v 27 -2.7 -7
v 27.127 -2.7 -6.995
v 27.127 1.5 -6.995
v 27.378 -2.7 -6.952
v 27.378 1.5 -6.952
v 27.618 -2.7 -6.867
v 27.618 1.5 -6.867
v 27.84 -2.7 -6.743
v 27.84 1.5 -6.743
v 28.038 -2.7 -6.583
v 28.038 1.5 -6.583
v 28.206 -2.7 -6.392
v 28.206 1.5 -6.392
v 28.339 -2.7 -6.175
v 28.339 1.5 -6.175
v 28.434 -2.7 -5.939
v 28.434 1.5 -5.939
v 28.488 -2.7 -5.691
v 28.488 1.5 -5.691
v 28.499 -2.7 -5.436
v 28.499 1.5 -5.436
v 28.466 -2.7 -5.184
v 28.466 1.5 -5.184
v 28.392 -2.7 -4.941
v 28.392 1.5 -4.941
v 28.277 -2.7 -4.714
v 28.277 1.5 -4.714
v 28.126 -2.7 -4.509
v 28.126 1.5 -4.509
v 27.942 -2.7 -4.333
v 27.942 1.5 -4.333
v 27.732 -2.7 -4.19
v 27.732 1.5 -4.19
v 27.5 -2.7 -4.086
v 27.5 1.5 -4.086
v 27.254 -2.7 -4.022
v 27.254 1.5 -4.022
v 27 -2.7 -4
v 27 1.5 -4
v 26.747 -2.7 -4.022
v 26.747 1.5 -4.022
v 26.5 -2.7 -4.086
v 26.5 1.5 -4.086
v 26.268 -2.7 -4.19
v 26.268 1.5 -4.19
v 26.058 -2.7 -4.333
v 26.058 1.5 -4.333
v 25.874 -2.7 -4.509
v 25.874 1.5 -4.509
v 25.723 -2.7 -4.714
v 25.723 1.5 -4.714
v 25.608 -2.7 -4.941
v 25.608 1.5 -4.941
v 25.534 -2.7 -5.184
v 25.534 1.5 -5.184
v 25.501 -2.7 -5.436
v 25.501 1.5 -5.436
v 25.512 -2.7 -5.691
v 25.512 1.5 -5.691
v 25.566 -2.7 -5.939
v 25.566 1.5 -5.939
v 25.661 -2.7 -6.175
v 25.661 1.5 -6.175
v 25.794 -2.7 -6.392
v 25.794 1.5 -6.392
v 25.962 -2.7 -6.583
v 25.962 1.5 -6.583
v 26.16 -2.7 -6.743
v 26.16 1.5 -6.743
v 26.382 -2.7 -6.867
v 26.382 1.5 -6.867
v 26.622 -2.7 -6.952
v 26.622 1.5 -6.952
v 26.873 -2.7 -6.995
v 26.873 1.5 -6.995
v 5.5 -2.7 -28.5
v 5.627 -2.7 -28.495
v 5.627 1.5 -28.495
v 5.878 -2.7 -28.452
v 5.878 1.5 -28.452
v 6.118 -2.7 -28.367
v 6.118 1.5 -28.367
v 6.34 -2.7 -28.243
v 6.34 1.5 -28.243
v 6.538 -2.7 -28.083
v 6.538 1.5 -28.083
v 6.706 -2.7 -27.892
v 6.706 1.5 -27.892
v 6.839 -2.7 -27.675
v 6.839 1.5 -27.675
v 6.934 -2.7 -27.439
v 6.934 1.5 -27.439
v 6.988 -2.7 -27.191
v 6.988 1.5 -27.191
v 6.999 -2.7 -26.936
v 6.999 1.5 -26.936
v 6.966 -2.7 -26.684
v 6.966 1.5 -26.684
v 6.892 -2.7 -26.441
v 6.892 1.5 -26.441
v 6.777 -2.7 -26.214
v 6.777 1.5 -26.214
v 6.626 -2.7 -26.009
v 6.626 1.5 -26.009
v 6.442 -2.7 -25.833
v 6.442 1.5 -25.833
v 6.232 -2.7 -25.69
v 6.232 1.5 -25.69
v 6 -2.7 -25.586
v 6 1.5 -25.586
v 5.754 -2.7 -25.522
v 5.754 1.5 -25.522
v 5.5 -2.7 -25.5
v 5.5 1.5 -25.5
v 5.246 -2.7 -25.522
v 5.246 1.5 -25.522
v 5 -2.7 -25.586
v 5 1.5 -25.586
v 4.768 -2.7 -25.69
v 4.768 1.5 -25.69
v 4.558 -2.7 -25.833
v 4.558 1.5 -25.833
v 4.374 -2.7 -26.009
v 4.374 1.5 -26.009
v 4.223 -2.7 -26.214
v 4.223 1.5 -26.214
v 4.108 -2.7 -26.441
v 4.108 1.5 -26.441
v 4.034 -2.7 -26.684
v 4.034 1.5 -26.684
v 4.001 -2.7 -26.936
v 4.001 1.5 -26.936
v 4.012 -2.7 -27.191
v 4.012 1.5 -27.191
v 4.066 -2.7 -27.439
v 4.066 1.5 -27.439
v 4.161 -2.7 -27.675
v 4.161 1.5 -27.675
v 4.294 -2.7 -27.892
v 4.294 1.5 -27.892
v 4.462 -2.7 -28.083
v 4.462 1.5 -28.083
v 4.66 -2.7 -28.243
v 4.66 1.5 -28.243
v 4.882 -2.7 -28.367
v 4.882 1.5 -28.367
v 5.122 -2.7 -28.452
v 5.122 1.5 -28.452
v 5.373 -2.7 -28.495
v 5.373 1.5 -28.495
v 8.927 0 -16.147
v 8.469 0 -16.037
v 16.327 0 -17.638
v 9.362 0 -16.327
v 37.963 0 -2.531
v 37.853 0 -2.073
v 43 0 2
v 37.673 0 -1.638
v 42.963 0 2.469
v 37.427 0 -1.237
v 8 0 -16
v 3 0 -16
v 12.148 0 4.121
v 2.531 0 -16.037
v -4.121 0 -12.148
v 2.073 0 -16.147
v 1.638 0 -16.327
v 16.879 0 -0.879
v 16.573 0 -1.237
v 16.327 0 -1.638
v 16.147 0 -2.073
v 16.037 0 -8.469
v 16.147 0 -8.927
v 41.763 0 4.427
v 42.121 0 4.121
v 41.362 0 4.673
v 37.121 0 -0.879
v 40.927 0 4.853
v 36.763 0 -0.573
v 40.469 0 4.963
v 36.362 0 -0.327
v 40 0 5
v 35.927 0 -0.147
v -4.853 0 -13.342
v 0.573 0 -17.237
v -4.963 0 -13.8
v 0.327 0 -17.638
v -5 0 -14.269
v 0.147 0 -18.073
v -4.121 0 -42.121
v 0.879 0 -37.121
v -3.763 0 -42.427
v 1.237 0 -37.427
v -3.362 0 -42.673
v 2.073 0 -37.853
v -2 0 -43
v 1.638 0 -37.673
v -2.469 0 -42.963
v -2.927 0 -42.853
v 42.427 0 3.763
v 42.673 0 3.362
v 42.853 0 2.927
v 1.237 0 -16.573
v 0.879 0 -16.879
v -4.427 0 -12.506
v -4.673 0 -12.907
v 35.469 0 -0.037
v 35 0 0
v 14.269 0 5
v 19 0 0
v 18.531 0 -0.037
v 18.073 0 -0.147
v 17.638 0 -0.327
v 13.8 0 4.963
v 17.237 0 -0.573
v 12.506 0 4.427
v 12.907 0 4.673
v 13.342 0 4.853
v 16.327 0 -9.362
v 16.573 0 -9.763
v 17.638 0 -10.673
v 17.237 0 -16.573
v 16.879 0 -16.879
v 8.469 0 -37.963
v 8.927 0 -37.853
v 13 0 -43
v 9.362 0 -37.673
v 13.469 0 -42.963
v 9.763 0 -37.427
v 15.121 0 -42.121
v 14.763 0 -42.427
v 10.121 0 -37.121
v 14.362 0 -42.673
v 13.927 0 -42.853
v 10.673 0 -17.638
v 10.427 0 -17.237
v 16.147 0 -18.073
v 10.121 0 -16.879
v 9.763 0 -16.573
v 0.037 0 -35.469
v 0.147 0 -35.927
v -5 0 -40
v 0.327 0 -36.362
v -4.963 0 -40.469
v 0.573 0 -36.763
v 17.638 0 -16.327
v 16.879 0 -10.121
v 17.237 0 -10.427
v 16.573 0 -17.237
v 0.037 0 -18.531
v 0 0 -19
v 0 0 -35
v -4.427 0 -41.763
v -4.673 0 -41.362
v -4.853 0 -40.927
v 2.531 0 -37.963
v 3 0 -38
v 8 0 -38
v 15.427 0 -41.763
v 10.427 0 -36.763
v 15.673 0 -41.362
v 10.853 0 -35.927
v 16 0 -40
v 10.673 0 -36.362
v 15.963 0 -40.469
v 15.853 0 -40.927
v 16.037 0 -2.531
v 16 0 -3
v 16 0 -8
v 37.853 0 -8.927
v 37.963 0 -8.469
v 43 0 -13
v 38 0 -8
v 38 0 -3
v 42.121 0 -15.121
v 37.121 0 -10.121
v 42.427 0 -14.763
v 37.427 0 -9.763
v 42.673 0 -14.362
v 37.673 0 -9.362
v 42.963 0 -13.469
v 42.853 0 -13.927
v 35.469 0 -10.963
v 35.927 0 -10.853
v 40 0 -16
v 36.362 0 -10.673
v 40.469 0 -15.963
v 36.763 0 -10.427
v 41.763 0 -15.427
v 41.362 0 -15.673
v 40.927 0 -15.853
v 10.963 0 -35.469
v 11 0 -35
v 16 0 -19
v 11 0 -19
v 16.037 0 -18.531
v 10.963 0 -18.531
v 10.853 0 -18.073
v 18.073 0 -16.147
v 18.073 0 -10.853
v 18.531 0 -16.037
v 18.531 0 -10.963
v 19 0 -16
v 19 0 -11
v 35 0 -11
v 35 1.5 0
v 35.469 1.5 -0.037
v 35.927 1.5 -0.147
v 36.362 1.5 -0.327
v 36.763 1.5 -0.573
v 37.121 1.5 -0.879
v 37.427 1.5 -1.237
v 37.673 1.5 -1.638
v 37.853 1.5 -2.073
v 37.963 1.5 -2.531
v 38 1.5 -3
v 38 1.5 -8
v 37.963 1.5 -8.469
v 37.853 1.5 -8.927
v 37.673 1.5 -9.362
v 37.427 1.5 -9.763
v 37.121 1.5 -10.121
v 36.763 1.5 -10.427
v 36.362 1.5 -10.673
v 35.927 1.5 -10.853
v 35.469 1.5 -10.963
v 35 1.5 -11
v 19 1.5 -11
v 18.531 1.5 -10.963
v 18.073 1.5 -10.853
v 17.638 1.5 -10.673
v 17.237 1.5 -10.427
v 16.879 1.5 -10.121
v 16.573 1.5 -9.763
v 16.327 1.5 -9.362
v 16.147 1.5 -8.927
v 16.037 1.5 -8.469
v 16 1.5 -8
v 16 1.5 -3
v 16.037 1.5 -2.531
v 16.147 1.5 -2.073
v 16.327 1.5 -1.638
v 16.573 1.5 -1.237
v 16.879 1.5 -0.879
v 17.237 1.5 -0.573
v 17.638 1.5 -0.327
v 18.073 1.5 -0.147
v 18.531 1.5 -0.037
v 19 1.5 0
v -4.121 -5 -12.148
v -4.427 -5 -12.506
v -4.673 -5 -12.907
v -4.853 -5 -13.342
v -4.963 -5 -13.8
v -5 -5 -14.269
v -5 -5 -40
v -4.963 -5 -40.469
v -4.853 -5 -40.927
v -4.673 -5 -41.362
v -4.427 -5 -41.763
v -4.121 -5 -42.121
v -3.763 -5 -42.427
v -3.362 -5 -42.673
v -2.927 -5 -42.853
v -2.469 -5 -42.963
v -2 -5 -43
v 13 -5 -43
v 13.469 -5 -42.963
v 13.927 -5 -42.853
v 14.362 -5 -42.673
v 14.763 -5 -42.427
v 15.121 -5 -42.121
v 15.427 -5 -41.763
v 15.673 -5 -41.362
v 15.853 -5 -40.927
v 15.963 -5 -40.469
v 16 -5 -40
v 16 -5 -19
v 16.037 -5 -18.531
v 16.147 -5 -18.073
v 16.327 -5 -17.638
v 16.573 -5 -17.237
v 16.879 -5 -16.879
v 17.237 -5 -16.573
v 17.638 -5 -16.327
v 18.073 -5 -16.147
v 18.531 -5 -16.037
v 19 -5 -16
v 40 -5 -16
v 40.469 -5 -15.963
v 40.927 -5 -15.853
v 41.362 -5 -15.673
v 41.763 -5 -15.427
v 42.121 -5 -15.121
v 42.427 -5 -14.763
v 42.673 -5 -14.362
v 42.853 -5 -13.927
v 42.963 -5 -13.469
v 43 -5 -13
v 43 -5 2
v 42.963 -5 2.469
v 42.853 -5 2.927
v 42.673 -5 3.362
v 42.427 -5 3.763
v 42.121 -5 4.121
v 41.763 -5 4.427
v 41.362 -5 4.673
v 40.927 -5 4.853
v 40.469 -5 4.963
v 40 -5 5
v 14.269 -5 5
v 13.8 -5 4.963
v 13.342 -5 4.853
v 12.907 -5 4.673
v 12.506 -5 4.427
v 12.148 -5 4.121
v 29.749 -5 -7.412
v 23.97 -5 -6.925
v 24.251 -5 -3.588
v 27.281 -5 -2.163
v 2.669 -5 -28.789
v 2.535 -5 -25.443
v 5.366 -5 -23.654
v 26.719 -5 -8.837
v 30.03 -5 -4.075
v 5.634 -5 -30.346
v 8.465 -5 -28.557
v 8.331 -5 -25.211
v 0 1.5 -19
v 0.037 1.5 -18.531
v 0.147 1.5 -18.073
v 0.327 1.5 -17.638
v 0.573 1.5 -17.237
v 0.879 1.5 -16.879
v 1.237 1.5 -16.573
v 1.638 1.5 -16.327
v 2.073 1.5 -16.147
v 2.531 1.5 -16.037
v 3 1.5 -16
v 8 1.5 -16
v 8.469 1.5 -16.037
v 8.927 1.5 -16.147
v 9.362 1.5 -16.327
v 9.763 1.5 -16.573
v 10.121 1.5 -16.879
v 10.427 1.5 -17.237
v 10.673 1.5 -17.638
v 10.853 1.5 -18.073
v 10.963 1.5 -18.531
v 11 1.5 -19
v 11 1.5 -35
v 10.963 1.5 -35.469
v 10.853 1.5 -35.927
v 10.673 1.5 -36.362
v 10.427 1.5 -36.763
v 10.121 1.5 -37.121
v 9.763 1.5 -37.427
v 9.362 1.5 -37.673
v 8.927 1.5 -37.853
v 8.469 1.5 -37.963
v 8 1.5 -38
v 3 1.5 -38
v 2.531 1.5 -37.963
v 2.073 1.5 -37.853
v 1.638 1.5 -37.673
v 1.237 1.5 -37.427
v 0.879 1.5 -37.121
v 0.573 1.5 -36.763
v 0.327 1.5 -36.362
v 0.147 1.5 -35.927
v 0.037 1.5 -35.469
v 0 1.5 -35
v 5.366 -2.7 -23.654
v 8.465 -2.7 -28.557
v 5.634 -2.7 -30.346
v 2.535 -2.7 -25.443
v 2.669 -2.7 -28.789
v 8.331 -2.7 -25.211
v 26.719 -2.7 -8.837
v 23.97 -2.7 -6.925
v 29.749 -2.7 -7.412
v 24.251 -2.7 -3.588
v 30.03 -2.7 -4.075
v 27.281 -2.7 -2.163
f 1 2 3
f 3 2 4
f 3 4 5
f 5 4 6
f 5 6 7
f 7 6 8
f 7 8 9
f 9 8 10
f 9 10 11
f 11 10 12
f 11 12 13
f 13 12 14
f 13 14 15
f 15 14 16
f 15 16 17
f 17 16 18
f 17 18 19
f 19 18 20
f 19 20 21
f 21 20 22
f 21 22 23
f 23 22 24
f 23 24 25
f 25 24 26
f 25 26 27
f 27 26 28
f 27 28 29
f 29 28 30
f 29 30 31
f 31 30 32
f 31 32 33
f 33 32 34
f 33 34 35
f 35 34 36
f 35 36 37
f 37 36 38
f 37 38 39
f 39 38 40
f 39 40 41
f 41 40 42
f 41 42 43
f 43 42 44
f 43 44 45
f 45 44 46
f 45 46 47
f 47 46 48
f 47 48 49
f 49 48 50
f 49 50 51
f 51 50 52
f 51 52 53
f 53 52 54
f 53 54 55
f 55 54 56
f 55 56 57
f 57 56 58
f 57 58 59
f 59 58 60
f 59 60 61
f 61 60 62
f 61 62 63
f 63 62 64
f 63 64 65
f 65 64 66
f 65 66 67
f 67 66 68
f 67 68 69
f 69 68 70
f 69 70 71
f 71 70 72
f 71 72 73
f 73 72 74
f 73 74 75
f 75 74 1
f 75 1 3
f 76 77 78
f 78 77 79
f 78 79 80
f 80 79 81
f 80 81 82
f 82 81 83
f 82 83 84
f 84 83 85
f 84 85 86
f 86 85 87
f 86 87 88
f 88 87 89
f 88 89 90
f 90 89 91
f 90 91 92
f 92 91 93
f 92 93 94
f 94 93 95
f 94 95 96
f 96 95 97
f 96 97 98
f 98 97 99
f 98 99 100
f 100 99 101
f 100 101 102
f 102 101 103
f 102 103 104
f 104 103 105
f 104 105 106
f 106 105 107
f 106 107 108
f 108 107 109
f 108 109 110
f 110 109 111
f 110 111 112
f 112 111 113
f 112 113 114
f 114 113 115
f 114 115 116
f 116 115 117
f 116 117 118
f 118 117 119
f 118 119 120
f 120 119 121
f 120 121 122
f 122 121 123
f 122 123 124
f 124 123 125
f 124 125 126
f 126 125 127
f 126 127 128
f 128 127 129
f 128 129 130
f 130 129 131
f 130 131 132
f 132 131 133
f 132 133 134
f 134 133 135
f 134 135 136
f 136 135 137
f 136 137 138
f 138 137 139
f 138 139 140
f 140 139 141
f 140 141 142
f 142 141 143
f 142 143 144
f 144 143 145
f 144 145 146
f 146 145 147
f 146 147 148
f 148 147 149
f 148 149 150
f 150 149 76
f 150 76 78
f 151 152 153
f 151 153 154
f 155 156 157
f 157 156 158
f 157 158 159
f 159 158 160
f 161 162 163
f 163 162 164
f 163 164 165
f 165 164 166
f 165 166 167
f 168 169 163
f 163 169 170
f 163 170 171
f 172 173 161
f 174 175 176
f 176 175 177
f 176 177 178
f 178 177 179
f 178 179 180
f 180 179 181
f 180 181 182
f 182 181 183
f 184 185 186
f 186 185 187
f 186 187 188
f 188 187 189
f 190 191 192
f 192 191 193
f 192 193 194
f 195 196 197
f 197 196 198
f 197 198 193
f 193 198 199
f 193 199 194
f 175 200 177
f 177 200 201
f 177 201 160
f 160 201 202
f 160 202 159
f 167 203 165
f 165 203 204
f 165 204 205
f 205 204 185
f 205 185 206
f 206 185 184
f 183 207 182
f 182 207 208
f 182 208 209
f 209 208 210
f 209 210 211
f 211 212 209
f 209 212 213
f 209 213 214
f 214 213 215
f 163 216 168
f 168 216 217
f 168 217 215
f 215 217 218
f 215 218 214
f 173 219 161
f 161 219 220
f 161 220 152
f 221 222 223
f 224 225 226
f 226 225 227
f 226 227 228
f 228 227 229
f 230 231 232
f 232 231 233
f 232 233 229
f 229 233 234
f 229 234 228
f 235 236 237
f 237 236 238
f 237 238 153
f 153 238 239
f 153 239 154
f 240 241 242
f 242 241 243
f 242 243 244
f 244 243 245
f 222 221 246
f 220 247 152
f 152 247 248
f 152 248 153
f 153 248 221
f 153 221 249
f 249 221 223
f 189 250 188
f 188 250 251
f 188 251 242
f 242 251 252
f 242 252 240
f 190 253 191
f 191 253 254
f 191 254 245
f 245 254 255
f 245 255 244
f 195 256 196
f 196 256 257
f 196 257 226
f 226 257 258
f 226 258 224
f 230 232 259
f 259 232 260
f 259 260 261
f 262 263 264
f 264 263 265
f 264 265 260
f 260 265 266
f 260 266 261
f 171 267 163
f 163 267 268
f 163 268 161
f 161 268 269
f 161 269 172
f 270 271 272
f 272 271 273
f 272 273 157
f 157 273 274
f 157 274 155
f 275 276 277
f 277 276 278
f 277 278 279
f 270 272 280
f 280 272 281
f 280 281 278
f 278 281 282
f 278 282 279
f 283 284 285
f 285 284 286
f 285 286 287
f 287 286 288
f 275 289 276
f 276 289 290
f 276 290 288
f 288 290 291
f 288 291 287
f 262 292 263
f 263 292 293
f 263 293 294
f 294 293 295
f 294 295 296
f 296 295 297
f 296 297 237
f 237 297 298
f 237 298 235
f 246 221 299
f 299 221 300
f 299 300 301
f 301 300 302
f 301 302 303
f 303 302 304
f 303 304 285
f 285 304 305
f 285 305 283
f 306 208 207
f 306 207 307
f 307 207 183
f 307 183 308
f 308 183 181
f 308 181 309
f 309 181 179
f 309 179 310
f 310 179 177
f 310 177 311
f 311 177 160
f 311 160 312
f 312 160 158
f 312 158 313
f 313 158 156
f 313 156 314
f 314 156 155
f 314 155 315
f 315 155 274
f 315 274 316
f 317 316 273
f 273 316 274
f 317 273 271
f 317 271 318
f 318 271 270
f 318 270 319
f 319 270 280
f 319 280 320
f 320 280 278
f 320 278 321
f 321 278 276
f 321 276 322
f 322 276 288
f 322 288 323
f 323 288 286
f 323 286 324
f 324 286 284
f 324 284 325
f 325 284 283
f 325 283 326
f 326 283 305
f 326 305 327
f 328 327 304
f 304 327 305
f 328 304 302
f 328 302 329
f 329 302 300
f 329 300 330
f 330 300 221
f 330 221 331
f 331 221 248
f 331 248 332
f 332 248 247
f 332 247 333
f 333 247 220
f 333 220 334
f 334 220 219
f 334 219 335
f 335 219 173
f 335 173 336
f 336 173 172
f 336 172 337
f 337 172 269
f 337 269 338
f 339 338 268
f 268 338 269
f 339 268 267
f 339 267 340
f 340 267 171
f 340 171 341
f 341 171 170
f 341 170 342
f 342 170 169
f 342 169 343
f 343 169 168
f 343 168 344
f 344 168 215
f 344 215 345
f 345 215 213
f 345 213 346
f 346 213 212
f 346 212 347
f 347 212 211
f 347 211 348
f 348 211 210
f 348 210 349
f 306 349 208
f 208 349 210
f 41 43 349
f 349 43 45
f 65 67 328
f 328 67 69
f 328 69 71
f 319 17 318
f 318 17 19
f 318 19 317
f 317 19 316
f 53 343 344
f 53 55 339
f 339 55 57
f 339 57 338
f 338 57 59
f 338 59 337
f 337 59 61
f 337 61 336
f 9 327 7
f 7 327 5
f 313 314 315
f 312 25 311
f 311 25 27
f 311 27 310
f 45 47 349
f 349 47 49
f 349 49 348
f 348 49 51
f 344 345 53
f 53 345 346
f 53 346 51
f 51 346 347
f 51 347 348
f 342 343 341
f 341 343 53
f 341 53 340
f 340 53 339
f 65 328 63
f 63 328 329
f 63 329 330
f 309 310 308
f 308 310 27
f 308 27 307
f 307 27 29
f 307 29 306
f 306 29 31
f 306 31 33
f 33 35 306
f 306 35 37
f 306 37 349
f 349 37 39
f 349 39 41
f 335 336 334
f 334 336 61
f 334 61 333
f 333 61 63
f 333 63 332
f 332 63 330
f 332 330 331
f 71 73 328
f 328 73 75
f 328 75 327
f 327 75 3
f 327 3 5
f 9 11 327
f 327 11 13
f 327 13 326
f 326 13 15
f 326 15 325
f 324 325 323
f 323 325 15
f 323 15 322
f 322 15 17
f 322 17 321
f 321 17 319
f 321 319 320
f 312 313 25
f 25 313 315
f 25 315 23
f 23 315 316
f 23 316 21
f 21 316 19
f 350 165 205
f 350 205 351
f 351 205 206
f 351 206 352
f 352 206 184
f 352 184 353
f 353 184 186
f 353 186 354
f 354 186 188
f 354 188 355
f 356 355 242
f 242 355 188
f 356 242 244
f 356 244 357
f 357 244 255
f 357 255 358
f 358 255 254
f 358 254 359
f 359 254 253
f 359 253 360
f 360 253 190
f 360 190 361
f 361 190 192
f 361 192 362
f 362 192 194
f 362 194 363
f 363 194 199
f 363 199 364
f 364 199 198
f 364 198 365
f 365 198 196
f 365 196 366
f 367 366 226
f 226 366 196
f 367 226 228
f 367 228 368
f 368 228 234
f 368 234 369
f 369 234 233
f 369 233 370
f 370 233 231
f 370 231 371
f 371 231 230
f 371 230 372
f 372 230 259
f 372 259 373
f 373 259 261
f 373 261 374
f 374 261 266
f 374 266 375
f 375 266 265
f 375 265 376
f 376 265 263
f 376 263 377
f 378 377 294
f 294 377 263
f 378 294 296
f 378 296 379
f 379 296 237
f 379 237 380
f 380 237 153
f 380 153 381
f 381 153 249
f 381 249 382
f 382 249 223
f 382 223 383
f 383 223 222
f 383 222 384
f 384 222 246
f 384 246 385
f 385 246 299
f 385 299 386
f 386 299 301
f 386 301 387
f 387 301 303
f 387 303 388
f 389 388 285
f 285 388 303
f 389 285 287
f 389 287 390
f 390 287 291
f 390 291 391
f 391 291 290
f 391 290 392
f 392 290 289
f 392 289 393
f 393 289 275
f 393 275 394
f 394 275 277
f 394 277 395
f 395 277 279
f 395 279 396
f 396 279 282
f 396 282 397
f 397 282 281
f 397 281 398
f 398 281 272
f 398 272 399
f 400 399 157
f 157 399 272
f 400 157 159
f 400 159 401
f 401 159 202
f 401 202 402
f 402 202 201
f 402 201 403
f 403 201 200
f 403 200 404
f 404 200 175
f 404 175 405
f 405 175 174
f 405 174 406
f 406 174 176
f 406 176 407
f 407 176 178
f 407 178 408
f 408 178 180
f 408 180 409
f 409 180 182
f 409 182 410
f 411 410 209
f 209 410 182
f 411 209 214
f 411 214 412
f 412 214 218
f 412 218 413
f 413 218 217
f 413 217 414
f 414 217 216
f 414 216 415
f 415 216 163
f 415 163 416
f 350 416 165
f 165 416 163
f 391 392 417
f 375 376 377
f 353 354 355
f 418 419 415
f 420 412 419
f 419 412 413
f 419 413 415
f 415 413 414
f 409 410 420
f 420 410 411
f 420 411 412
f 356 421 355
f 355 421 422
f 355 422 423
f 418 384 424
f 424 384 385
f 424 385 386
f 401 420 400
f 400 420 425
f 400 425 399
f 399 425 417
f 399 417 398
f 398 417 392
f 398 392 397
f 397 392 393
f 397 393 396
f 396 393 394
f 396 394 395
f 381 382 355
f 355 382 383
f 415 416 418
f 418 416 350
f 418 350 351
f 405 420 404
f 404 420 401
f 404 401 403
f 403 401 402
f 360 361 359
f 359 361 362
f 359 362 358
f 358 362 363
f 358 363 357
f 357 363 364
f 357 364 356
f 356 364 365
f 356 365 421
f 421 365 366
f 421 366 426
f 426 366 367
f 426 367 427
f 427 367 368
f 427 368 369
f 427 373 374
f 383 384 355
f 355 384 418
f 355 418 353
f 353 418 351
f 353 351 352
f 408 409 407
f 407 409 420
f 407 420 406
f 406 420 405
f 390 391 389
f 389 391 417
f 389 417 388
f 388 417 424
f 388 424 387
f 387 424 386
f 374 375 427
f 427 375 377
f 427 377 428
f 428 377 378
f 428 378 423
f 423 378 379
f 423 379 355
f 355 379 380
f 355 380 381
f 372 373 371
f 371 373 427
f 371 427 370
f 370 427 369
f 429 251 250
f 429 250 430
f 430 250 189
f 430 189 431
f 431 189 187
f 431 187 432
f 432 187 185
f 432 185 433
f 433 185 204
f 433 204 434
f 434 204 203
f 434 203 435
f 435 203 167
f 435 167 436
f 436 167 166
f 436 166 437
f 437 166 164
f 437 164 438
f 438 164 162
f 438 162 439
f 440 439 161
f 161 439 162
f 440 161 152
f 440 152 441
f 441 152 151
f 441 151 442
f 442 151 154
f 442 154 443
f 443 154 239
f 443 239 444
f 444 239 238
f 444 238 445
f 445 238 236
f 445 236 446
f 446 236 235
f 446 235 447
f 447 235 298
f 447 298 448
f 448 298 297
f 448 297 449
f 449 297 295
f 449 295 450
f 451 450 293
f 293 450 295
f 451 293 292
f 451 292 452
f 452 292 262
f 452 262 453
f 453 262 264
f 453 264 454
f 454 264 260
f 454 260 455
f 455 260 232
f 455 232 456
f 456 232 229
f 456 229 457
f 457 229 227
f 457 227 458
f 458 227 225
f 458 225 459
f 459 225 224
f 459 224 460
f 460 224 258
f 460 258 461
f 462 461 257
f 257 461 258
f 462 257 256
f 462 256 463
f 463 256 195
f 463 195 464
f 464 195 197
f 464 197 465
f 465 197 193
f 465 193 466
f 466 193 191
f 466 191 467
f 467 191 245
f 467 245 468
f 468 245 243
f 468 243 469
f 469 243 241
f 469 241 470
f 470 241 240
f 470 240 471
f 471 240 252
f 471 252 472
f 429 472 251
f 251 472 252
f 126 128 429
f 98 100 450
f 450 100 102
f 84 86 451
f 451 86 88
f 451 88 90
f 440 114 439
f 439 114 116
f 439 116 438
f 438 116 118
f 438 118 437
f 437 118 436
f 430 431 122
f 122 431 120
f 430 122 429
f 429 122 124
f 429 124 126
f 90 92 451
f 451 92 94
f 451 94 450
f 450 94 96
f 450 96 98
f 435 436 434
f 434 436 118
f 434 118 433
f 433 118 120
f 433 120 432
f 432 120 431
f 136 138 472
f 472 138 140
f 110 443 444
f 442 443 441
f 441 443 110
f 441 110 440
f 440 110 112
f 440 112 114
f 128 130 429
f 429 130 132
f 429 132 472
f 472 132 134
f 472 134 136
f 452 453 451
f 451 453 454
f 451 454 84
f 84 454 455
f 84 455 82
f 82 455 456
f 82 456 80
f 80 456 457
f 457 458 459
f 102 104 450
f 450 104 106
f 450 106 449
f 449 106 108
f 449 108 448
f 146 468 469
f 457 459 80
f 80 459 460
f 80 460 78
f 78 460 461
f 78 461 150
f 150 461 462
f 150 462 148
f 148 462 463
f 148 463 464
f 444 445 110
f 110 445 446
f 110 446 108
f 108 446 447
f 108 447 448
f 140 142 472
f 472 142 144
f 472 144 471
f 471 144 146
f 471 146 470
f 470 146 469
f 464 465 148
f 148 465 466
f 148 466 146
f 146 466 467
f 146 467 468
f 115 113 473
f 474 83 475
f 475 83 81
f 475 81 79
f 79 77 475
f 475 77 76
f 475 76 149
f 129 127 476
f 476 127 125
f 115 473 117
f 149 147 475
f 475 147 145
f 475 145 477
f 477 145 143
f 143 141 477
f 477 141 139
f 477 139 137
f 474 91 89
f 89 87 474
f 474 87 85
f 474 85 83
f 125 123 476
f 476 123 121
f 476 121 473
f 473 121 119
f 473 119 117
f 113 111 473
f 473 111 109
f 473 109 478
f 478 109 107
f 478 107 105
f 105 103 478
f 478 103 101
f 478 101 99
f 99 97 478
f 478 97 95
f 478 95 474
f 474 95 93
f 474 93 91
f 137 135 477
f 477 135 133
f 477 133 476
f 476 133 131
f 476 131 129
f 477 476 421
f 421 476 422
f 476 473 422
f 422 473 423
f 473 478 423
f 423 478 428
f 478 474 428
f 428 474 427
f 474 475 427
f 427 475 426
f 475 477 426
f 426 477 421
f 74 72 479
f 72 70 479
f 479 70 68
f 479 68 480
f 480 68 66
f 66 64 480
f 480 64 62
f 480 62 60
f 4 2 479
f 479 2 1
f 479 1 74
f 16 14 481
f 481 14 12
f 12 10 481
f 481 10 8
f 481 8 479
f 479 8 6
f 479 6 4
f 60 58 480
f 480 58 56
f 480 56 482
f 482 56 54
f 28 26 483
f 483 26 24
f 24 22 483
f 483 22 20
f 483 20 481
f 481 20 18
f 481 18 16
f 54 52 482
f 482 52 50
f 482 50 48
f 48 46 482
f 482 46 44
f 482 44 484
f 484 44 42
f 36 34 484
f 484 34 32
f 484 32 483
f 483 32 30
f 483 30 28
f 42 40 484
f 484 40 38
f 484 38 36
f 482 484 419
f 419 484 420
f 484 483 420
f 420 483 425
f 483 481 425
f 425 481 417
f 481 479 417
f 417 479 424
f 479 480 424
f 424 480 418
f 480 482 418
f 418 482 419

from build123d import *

# Parameters (mm, degrees)
SALIENTE_EXTRUIR1_DEPTH   = 1.5
SALIENTE_EXTRUIR1_2_DEPTH = 1.5
SALIENTE_EXTRUIR2_DEPTH   = 5
CROQUIS3_R                = 1.5
CORTAR_EXTRUIR1_DEPTH     = 45
CORTAR_EXTRUIR2_DEPTH     = 2.3
CROQUIS5_R                = 1.5
CORTAR_EXTRUIR3_DEPTH     = 42.3
CORTAR_EXTRUIR4_DEPTH     = 2.3


with BuildPart() as part:
    # Croquis1 → Saliente-Extruir1 (new body)
    with BuildSketch(Plane(origin=(0, 0, 0), x_dir=(1, 0, 0), z_dir=(0, 1, 0))):
        with BuildLine():
            Line((3, 38), (8, 38))
            ThreePointArc((8, 38), (10.121320344, 37.121320344), (11, 35))
            Line((11, 35), (11, 19))
            ThreePointArc((11, 19), (10.121320344, 16.878679656), (8, 16))
            Line((8, 16), (3, 16))
            ThreePointArc((3, 16), (0.878679656, 16.878679656), (0, 19))
            Line((0, 19), (0, 35))
            ThreePointArc((0, 35), (0.878679656, 37.121320344), (3, 38))
        make_face()
    extrude(amount=SALIENTE_EXTRUIR1_DEPTH)



with BuildPart() as body_2:
    # Croquis1 → Saliente-Extruir1 2 (new body)
    with BuildSketch(Plane(origin=(0, 0, 0), x_dir=(1, 0, 0), z_dir=(0, 1, 0))):
        with BuildLine():
            Line((19, 11), (35, 11))
            ThreePointArc((35, 11), (37.121320344, 10.121320344), (38, 8))
            Line((38, 8), (38, 3))
            ThreePointArc((38, 3), (37.121320344, 0.878679656), (35, 0))
            Line((35, 0), (19, 0))
            ThreePointArc((19, 0), (16.878679656, 0.878679656), (16, 3))
            Line((16, 3), (16, 8))
            ThreePointArc((16, 8), (16.878679656, 10.121320344), (19, 11))
        make_face()
    extrude(amount=SALIENTE_EXTRUIR1_2_DEPTH)


with BuildPart() as part_1:
    add(part.part)

    add(body_2.part)  # Saliente-Extruir2 merges body 2
    # Croquis2 → Saliente-Extruir2 (add)
    with BuildSketch(Plane(origin=(0, 0, 0), x_dir=(1, 0, 0), z_dir=(0, 1, 0))):
        with BuildLine():
            Line((-2, 43), (13, 43))
            ThreePointArc((13, 43), (15.121320344, 42.121320344), (16, 40))
            Line((16, 40), (16, 19))
            ThreePointArc((16, 19), (16.878679656, 16.878679656), (19, 16))
            Line((19, 16), (40, 16))
            ThreePointArc((40, 16), (42.121320344, 15.121320344), (43, 13))
            Line((43, 13), (43, -2))
            ThreePointArc((43, -2), (42.121320344, -4.121320344), (40, -5))
            Line((40, -5), (14.269081713, -5))
            ThreePointArc((14.269081713, -5), (13.121031415, -4.771638598), (12.147761369, -4.121320344))
            Line((12.147761369, -4.121320344), (-4.121320344, 12.147761369))
            ThreePointArc((-4.121320344, 12.147761369), (-4.771638598, 13.121031415), (-5, 14.269081713))
            Line((-5, 14.269081713), (-5, 40))
            ThreePointArc((-5, 40), (-4.121320344, 42.121320344), (-2, 43))
        make_face()
    extrude(amount=-SALIENTE_EXTRUIR2_DEPTH)

    # Croquis3 → Cortar-Extruir1 (cut)
    with BuildSketch(Plane(origin=(0, 1.5, 0), x_dir=(1, 0, 0), z_dir=(0, 1, 0))):
        with Locations((5.5, 27)):
            Circle(CROQUIS3_R)
    extrude(amount=-CORTAR_EXTRUIR1_DEPTH, mode=Mode.SUBTRACT)

    # Croquis4 → Cortar-Extruir2 (cut)
    with BuildSketch(Plane.XZ.offset(5)):
        Polygon((2.669346369, -28.789059349), (5.634044029, -30.345947628), (8.464697661, -28.556888279), (8.330653631, -25.210940651), (5.365955971, -23.654052372), (2.535302339, -25.443111721), align=None)
    extrude(amount=-CORTAR_EXTRUIR2_DEPTH, mode=Mode.SUBTRACT)

    # Croquis5 → Cortar-Extruir3 (cut)
    with BuildSketch(Plane(origin=(0, 1.5, 0), x_dir=(1, 0, 0), z_dir=(0, 1, 0))):
        with Locations((27, 5.5)):
            Circle(CROQUIS5_R)
    extrude(amount=-CORTAR_EXTRUIR3_DEPTH, mode=Mode.SUBTRACT)

    # Croquis8 → Cortar-Extruir4 (cut)
    with BuildSketch(Plane.XZ.offset(5)):
        Polygon((24.250581209, -3.588448368), (23.96983833, -6.925290703), (26.719257122, -8.836842335), (29.749418791, -7.411551632), (30.03016167, -4.074709297), (27.280742878, -2.163157665), align=None)
    extrude(amount=-CORTAR_EXTRUIR4_DEPTH, mode=Mode.SUBTRACT)


solid = part_1.part
